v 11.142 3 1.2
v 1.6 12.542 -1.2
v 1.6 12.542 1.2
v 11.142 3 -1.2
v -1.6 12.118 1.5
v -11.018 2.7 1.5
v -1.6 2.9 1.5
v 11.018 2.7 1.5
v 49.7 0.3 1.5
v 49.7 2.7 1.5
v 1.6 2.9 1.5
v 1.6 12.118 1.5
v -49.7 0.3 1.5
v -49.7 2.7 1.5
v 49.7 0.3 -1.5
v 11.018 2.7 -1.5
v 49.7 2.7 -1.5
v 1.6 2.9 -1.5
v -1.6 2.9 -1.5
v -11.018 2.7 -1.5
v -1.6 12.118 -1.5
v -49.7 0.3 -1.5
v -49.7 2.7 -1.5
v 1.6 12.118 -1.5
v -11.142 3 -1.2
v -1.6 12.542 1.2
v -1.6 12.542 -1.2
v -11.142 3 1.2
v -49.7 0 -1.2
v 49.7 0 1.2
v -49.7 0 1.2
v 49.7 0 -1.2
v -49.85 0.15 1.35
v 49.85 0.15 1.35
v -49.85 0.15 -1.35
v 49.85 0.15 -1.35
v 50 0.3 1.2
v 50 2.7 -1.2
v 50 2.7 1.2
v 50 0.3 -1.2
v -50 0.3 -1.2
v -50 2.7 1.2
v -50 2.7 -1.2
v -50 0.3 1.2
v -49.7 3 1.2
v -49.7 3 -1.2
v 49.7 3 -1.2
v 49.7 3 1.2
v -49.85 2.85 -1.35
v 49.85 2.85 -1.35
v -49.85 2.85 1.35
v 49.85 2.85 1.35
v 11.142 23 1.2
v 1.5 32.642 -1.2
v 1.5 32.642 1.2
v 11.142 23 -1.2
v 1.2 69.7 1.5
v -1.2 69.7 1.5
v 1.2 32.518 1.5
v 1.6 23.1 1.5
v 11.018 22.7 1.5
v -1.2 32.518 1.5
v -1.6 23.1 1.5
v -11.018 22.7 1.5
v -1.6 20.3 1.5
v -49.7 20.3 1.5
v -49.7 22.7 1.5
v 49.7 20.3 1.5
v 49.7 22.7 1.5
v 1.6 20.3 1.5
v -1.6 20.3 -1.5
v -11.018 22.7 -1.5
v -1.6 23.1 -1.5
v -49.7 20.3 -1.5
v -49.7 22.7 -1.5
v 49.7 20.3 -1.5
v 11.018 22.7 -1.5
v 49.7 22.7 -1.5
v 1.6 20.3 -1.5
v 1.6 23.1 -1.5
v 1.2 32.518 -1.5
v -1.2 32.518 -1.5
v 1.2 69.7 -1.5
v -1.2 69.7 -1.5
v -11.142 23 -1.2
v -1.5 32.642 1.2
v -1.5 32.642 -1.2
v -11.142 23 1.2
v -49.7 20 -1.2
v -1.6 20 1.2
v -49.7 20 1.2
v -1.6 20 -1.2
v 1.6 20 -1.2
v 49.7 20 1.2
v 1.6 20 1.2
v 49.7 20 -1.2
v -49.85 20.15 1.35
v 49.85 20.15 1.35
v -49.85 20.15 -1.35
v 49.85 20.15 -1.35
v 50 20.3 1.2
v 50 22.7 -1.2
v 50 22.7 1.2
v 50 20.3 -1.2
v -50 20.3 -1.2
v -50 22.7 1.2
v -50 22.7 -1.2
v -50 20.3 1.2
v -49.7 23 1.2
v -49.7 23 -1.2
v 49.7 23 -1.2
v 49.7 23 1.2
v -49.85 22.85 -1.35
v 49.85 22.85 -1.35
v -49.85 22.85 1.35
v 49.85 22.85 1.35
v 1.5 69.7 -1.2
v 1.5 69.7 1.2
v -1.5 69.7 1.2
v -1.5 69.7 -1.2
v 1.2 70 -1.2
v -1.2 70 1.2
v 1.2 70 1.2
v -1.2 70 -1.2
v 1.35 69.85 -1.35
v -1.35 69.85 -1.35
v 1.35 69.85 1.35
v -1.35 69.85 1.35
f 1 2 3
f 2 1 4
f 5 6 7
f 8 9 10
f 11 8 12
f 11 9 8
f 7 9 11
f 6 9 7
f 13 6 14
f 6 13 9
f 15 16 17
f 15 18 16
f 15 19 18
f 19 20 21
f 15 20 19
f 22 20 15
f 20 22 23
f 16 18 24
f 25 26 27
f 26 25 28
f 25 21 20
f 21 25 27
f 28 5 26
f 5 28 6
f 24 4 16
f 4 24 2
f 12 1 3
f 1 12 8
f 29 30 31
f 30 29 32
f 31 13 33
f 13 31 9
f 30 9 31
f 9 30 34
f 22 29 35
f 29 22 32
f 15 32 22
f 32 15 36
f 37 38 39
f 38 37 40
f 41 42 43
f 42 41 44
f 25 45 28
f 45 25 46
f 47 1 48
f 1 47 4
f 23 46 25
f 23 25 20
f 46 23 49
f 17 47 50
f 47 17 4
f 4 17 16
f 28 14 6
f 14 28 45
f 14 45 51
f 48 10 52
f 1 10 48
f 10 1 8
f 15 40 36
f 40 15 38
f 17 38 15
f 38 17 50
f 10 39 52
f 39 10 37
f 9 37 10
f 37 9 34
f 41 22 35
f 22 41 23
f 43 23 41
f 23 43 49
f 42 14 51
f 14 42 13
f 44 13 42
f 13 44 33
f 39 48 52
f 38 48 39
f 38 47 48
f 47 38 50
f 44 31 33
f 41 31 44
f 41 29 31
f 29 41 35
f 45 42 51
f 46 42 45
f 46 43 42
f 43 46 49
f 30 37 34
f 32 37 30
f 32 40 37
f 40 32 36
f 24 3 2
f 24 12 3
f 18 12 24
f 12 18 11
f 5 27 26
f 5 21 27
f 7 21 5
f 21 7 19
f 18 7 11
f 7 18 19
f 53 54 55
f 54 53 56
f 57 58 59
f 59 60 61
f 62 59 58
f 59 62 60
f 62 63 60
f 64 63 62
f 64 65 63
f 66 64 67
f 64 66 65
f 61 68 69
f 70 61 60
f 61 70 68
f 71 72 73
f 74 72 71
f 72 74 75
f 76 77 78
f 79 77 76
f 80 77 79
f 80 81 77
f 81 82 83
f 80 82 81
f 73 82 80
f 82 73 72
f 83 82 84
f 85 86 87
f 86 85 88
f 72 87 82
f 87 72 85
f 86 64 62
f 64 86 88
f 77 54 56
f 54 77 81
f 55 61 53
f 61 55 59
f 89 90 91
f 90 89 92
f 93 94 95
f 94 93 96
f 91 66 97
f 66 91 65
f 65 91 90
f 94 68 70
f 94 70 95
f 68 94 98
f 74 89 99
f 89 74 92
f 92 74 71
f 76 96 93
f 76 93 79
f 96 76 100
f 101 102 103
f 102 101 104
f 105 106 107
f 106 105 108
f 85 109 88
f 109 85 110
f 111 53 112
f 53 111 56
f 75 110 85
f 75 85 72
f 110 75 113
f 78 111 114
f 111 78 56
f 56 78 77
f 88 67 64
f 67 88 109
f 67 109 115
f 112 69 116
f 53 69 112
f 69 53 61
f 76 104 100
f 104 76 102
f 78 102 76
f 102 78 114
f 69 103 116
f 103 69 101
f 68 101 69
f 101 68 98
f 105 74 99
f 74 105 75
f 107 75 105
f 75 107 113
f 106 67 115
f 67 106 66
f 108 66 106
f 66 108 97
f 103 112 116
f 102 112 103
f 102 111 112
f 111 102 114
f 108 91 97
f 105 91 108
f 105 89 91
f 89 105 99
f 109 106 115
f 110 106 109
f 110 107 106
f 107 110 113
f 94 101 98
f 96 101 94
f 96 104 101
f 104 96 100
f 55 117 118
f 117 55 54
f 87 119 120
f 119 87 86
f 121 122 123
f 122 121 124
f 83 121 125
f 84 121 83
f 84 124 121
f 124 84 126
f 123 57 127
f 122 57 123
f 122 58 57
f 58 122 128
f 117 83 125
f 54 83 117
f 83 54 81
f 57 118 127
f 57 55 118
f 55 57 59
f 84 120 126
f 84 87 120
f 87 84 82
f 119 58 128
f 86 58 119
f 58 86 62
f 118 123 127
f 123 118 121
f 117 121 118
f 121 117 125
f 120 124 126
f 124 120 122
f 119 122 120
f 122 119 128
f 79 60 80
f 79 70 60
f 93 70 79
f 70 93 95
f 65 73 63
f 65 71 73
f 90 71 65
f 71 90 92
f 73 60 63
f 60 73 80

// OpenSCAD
// file: ../../lib/shapes.scad
$fa = $preview ? 1 : .1;
$fs = $preview ? 1 : .1;

// Beginnings of a 3d shapes library. I want shapes with a "margin" property
// and possibly specific overrides for margins in a particular direction.
// The idea is to add a thickness around the outside of the entire shape
// without changing the center of the shape. This can be used with
// `difference` to carve out space for shapes to fit, with adjustable
// tolerance.

module ngon(
  n=undef,
  r=undef, side=undef, // must specify one of r or side length
  z=undef, // thickness (in z direction)
  on="origin", // placement: origin | y+
  margin=0,       // global margin
  margin_r=undef, // override r margin
  margin_z=undef, // override depth margin
  chamfer=0,
) {
  margin_r = margin_r == undef ? margin : margin_r;
  margin_z = margin_z == undef ? margin : margin_z;
  r = r == undef ? side/(2*sin(180/n)) : r;
  ty = on == "y+" ? r*cos(180/n) : 0;
  translate([0, ty, 0])
    rotate([0, 0, 90 - (n%2 == 0 ? 180/n : 0)])
      if (chamfer > 0) {
        // TODO chamfer maybe depends on the margin in this case too?
        translate([0, 0, (z + 2*margin_z - chamfer)/2])
          cylinder(h=chamfer, r1=r + margin_r, r2=r + margin_r - chamfer, $fn=n, center=true);
        cylinder(h=z + 2*margin_z - 2*chamfer, r=r + margin_r, $fn=n, center=true);
        translate([0, 0, -(z + 2*margin_z - chamfer)/2])
          cylinder(h=chamfer, r2=r + margin_r, r1=r + margin_r - chamfer, $fn=n, center=true);
      } else {
        cylinder(h=z + 2*margin_z, r=r + margin_r, $fn=n, center=true);
      }
}

//difference() {
//  %ngon(n=5, side=8, z=4, chamfer=1, on="y+", margin=1);
//  ngon(n=5, side=8, z=4, chamfer=1, on="y+");
//}

module box(
  x=undef, y=undef, z=undef,  // 3 ways to specify size
  on="origin",    // placement: origin | x+ | y+ | z+
  margin=0,  // global margin
  margin_x=undef,  // override margins
  margin_y=undef,
  margin_z=undef,
  chamfer=0, // flatten the corners
) {
  s = is_num(z)  ? [x, y, z]  // size: x=num, y=num, z=num
    : is_list(x) ? x          //   or: x=[num, num, num]
    : [x, x, x];              //   or: x=num
  m = [
    margin_x == undef ? margin : margin_x,
    margin_y == undef ? margin : margin_y,
    margin_z == undef ? margin : margin_z
  ];

  translate(on == "x+" ? [ s.x/2,      0,      0]
          : on == "x-" ? [-s.x/2,      0,      0]
          : on == "y+" ? [     0,  s.y/2,      0]
          : on == "y-" ? [     0, -s.y/2,      0]
          : on == "z+" ? [     0,      0,  s.z/2]
          : on == "z-" ? [     0,      0, -s.z/2]
          :              [     0,      0,      0])
    if (chamfer > 0) {
      // This looks pretty wild, but I just want to maintain a minimum margin
      // in each of the specified directions from the chamfer, so to keep the
      // chamfer angles all at 45, you need take the smallest chamfer out of
      // the big shape (box + margins) that maintains the right margin
      // distance in each direction.
      cyz = 2*min(m.y, m.z) + chamfer;
      cxz = 2*min(m.x, m.z) + chamfer;
      cxy = 2*min(m.x, m.y) + chamfer;
      intersection() {
        cube(s + 2*m, center=true);
        rotate([45,0,0])
          cube([
            s.x + 2*m.x + 1,
            (s.y + 2*m.y + s.z + 2*m.z - cyz)/sqrt(2),
            (s.y + 2*m.y + s.z + 2*m.z - cyz)/sqrt(2)
          ], center=true);
        rotate([0,45,0])
          cube([
            (s.x + 2*m.x + s.z + 2*m.z - cxz)/sqrt(2),
            s.y + 2*m.y + 1,
            (s.x + 2*m.x + s.z + 2*m.z - cxz)/sqrt(2)
          ], center=true);
        rotate([0,0,45])
          cube([
            (s.x + 2*m.x + s.y + 2*m.y - cxy)/sqrt(2),
            (s.x + 2*m.x + s.y + 2*m.y - cxy)/sqrt(2),
            s.z + 2*m.z + 1
          ], center=true);
      }
    } else {
      cube(s + 2*m, center=true);
    }
}

//difference() {
//  box(10, 20, 30, chamfer=4, margin=1, margin_x=2);
//  box(10, 20, 30, chamfer=4);
//  // see through to the chamfer on different margins
//  color("red") box(100, on="z+");
//}
// main file
use <../../lib/shapes.scad>;

$fa = $preview ? 1 : .1;
$fs = $preview ? 1 : .1;

leg = 50;
arm = 50;
t = 3;
m = 0.1;
c=.6;

module part() {
  intersection() {
    rotate([0,0,45])
      box(x=20, y=20, z=t, chamfer=c);
    box(x=30, y=30, z=t, on="y+", chamfer=c);
  }
  box(x=2*leg, y=t, z=t, on="y+", chamfer=c);
  box(x=t, y=arm, z=t, on="y+", chamfer=c);
}

module base() {
  difference() {
    part();
    box(t, on="y+", margin=m);
  }
}

module support() {
  difference() {
    part();
    translate([0, t, 0])
      box(x=t, y=arm, z=t, on="y+", margin=m);
  }
}

support();
translate([0, 20, 0])
  base();
